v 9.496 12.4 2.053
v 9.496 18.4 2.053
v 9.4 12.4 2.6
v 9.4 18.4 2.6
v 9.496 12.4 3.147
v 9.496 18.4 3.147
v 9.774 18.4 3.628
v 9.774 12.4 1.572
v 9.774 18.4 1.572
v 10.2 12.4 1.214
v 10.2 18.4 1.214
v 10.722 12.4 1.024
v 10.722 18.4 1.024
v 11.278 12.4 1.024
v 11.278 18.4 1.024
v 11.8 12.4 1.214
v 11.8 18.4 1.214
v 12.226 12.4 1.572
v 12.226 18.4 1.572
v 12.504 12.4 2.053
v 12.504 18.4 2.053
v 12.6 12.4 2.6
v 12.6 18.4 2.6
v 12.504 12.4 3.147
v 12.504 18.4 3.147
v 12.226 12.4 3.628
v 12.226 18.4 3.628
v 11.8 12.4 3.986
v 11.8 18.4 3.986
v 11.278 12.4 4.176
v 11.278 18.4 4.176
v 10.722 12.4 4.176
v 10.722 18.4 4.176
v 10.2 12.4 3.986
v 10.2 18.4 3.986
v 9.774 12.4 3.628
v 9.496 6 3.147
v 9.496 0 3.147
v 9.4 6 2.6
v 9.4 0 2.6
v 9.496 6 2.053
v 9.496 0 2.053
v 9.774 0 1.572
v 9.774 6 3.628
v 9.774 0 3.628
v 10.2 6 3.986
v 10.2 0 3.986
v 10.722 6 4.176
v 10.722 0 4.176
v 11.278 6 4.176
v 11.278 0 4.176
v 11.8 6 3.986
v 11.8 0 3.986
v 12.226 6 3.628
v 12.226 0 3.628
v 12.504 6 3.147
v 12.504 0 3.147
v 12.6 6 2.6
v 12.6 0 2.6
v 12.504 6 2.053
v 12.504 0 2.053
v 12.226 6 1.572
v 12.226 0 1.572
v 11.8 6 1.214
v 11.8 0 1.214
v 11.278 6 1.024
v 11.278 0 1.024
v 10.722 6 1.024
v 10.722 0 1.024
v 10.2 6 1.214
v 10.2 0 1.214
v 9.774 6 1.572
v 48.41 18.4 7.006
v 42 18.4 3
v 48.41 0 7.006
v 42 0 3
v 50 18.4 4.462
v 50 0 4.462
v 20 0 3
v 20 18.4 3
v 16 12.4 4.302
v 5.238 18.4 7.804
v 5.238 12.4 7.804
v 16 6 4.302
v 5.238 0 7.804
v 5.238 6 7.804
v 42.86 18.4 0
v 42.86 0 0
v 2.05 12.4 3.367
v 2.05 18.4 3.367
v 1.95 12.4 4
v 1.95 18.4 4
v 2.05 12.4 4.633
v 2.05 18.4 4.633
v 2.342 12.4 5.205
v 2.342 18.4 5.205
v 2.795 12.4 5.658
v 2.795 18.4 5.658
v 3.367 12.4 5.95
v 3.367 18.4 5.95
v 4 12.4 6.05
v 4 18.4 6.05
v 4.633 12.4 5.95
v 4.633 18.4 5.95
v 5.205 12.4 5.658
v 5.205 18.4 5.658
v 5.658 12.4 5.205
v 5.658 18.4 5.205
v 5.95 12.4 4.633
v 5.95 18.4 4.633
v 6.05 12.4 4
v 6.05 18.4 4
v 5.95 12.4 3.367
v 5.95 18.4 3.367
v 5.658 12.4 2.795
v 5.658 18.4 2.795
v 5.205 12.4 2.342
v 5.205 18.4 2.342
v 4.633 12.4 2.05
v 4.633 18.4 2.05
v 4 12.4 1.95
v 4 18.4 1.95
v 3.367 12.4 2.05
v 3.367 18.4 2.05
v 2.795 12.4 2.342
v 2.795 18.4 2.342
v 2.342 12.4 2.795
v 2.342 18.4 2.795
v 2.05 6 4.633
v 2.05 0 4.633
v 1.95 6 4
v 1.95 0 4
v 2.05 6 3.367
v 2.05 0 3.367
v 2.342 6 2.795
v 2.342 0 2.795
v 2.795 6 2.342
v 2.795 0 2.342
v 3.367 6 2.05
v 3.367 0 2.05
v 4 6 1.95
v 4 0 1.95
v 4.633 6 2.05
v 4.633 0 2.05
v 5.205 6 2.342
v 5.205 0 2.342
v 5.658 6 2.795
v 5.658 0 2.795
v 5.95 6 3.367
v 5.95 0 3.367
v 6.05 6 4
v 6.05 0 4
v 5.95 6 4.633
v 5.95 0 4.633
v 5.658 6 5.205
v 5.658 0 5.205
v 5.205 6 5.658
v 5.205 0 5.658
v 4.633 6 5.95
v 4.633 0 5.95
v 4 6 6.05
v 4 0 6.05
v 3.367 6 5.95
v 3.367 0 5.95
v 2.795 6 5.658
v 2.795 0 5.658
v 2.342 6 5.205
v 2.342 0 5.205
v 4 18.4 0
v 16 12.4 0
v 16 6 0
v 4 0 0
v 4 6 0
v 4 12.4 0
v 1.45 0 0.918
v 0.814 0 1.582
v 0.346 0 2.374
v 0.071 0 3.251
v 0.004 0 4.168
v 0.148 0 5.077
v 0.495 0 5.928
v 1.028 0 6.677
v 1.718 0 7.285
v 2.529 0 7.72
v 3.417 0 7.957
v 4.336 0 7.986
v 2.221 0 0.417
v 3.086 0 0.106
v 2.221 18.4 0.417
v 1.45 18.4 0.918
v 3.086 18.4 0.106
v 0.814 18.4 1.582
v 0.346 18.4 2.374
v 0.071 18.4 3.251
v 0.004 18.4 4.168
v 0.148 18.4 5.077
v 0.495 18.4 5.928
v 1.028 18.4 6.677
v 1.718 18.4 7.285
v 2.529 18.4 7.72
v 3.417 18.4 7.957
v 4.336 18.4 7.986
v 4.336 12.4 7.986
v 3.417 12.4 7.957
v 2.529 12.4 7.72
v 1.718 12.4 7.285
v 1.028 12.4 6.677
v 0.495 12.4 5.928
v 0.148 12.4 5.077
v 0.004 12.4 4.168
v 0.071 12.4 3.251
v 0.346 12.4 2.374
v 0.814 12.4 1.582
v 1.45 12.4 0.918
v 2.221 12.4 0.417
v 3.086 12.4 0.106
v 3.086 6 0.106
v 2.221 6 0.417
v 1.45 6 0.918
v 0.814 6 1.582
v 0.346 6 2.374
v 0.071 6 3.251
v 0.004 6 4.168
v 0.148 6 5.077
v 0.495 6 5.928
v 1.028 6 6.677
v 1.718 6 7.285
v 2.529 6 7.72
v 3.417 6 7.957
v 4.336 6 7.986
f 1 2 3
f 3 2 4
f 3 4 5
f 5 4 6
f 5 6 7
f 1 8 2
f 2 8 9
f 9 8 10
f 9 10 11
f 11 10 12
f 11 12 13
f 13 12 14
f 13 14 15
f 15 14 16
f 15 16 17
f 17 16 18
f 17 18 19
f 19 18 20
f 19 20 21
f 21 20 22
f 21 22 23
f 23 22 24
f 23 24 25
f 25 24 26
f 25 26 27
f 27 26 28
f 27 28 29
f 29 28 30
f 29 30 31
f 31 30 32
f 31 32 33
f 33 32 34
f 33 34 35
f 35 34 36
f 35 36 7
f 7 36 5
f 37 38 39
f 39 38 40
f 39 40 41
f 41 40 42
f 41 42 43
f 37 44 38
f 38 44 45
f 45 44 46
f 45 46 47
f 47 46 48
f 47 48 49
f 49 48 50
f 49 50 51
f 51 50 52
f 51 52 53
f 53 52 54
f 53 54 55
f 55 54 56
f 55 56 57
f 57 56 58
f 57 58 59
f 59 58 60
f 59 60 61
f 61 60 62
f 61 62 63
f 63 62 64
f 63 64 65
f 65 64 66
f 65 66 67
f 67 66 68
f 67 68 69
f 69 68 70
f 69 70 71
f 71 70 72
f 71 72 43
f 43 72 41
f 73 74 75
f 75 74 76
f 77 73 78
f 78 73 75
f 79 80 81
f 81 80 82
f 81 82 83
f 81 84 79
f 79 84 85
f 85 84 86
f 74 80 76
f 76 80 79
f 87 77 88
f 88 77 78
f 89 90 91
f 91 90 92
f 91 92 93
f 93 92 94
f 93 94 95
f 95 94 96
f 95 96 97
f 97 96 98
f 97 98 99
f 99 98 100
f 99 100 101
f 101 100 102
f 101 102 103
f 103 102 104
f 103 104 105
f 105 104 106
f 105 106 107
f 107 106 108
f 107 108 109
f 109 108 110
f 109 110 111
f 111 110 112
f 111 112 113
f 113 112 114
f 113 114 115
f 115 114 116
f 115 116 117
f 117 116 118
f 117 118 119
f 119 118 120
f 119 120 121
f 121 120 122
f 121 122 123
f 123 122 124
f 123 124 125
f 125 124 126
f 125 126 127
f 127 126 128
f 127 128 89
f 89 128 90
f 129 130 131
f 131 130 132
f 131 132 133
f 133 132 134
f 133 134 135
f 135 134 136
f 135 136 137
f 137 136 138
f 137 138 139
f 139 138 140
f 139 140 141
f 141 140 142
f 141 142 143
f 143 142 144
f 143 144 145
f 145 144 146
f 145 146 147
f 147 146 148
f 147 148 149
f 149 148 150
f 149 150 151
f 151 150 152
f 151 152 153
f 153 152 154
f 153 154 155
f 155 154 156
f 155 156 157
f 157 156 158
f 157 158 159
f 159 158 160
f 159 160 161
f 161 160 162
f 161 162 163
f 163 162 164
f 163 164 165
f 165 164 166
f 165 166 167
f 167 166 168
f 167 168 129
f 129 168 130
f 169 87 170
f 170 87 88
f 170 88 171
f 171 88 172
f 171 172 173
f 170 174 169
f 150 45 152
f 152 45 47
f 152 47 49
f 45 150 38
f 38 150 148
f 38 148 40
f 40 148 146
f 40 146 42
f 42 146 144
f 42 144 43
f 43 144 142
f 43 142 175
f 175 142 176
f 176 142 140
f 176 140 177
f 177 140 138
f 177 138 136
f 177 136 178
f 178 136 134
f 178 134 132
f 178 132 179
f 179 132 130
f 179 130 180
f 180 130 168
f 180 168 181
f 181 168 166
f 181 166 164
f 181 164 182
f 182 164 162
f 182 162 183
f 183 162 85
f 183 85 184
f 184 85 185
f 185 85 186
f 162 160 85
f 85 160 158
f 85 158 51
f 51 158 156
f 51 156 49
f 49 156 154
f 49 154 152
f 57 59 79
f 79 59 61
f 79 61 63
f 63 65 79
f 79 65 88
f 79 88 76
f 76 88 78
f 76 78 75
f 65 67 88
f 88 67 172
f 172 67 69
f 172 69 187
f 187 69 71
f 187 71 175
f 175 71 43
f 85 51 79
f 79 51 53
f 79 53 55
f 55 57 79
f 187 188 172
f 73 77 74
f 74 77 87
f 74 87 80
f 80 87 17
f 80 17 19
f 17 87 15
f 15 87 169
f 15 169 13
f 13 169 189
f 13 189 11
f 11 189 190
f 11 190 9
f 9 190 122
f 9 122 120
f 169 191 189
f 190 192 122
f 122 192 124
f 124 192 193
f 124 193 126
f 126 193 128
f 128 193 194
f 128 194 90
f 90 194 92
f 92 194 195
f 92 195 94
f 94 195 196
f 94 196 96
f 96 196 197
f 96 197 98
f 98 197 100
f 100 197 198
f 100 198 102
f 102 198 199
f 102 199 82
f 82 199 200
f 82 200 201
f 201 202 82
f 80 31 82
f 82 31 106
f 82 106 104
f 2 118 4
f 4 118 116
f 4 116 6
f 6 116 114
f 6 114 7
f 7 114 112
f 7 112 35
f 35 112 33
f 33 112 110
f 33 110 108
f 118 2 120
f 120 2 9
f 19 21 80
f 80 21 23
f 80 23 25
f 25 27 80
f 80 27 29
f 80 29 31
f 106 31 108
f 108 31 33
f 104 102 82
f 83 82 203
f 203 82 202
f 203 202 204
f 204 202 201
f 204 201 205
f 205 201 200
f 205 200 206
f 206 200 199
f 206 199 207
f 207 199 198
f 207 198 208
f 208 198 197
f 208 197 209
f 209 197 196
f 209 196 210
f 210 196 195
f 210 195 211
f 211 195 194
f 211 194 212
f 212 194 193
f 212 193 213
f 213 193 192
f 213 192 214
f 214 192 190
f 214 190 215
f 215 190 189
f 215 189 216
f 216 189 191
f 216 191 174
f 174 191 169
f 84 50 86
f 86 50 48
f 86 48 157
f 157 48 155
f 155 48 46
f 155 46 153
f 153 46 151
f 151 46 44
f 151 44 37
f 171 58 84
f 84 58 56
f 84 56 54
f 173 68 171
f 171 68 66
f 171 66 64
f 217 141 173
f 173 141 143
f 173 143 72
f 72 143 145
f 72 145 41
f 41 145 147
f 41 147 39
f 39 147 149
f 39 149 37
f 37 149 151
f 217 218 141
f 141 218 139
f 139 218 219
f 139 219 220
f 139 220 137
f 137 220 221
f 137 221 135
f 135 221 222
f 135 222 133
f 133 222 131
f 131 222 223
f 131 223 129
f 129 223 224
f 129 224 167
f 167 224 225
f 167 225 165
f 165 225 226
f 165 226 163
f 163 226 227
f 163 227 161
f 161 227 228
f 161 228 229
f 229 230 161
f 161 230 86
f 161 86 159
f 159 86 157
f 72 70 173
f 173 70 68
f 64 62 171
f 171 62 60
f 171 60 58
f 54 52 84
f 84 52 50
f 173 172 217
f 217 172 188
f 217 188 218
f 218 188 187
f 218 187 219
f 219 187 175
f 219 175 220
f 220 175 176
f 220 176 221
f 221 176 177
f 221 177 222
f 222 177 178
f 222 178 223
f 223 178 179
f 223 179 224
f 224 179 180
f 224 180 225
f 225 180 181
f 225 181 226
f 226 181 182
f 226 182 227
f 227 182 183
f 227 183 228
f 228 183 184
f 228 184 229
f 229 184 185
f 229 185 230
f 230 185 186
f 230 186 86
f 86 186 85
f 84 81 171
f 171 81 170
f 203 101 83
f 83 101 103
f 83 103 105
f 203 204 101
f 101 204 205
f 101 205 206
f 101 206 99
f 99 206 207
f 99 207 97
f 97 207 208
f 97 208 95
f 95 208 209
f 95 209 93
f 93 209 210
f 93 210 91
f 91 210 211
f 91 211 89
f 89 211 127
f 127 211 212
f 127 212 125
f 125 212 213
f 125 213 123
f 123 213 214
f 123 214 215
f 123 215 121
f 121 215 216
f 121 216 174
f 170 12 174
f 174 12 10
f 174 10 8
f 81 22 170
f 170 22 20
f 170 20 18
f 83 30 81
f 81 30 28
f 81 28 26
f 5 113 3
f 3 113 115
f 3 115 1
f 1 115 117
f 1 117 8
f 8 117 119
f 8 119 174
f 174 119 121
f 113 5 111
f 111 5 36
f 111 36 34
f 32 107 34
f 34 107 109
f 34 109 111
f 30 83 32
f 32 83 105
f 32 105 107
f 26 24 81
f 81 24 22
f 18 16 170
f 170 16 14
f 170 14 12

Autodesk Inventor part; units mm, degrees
ref_plane "YZ Plane" through (0, 0, 0) normal (1, 0, 0) x (0, 1, 0)
ref_plane "XZ Plane" through (0, 0, 0) normal (0, 1, 0) x (-1, 0, 0)
ref_plane "XY Plane" through (0, 0, 0) normal (0, 0, 1) x (1, 0, 0)
sketch "Sketch1" plane through (0, 0, 0) normal (0, 0, 1) x (1, 0, 0)
  line L0 (0, 0) -> (50, 0)
  line L1 (50, 0) -> (50, 18.4)
  line L2 (50, 18.4) -> (0, 18.4)
  line L3 (0, 18.4) -> (0, 0)
  line L4 (0, 12.4) -> (16, 12.4)
  line L5 (16, 12.4) -> (16, 6)
  line L6 (16, 6) -> (0, 6)
  line L7 (0, 6) -> (0, 12.4)
  line L8 (58.8783, 9.2) -> (-7.6234, 9.2)
  point P0 (0, 6)
  dimension "d0" = 50
  dimension "d1" = 18.4
  dimension "d11" = 16
  dimension "d13" = 18.4
  dimension "d14" = 6.4
  dimension "d15" = 6.4
extrude "Extrusion1" add sketch "Sketch1" along normal blind 8 contours L3 L6 L5 L8 L1 L0 | L8 L5 L4 L3 L2 L1
fillet "Fillet1" radius 4 4 edges at (0, 3, 8) (0, 3, 0) (0, 15.4, 8) (0, 15.4, 0)
sketch "Sketch3" plane through (50, 0, 0) normal (0, -1, 0) x (1, 0, 0)
  circle A0 centre (-46, 4) radius 2.05
  line L0 (-46, 8) -> (0, 8) projected
  arc A1 (-46, 8) -> (-46, 0) centre (-46, 4) ccw projected
  circle A2 centre (-39, 2.6) radius 1.6
  line L1 (-46, 0) -> (0, 0) projected
  circle A3 centre (-46, 4) radius 4
  line L2 (-44.7623, 7.8037) -> (-30, 3)
  line L3 (-30, 3) -> (-8, 3)
  line L4 (-8, 3) -> (0, 8)
  line L5 (0, 0) -> (0, 8) projected
  line L6 (-7.1396, 0) -> (0, 4.4623)
  line L7 (0, 4.4623) -> (-1.59, 7.0063)
  point P0 (-50, 0)
  point P1 (-50, 4)
  point P2 (-50, 4)
  point P3 (-50, 4)
  point P4 (-4, 5.5)
  dimension "d23" = 8
  dimension "d17" = 4.1
  dimension "d18" = 4
  dimension "d19" = 4
  dimension "d20" = 3.2
  dimension "d21" = 2.6
  dimension "d22" = 11
  dimension "d24" = 20
  dimension "d25" = 8
  dimension "d26" = 5
  dimension "d27" = 3
extrude "Extrusion3" cut sketch "Sketch3" against normal blind 20 contours A0 | L0 L4 L3 L2 A3 | L5 L7 L4 | L5 L1 L6 | A2
properties part number "Lever"
